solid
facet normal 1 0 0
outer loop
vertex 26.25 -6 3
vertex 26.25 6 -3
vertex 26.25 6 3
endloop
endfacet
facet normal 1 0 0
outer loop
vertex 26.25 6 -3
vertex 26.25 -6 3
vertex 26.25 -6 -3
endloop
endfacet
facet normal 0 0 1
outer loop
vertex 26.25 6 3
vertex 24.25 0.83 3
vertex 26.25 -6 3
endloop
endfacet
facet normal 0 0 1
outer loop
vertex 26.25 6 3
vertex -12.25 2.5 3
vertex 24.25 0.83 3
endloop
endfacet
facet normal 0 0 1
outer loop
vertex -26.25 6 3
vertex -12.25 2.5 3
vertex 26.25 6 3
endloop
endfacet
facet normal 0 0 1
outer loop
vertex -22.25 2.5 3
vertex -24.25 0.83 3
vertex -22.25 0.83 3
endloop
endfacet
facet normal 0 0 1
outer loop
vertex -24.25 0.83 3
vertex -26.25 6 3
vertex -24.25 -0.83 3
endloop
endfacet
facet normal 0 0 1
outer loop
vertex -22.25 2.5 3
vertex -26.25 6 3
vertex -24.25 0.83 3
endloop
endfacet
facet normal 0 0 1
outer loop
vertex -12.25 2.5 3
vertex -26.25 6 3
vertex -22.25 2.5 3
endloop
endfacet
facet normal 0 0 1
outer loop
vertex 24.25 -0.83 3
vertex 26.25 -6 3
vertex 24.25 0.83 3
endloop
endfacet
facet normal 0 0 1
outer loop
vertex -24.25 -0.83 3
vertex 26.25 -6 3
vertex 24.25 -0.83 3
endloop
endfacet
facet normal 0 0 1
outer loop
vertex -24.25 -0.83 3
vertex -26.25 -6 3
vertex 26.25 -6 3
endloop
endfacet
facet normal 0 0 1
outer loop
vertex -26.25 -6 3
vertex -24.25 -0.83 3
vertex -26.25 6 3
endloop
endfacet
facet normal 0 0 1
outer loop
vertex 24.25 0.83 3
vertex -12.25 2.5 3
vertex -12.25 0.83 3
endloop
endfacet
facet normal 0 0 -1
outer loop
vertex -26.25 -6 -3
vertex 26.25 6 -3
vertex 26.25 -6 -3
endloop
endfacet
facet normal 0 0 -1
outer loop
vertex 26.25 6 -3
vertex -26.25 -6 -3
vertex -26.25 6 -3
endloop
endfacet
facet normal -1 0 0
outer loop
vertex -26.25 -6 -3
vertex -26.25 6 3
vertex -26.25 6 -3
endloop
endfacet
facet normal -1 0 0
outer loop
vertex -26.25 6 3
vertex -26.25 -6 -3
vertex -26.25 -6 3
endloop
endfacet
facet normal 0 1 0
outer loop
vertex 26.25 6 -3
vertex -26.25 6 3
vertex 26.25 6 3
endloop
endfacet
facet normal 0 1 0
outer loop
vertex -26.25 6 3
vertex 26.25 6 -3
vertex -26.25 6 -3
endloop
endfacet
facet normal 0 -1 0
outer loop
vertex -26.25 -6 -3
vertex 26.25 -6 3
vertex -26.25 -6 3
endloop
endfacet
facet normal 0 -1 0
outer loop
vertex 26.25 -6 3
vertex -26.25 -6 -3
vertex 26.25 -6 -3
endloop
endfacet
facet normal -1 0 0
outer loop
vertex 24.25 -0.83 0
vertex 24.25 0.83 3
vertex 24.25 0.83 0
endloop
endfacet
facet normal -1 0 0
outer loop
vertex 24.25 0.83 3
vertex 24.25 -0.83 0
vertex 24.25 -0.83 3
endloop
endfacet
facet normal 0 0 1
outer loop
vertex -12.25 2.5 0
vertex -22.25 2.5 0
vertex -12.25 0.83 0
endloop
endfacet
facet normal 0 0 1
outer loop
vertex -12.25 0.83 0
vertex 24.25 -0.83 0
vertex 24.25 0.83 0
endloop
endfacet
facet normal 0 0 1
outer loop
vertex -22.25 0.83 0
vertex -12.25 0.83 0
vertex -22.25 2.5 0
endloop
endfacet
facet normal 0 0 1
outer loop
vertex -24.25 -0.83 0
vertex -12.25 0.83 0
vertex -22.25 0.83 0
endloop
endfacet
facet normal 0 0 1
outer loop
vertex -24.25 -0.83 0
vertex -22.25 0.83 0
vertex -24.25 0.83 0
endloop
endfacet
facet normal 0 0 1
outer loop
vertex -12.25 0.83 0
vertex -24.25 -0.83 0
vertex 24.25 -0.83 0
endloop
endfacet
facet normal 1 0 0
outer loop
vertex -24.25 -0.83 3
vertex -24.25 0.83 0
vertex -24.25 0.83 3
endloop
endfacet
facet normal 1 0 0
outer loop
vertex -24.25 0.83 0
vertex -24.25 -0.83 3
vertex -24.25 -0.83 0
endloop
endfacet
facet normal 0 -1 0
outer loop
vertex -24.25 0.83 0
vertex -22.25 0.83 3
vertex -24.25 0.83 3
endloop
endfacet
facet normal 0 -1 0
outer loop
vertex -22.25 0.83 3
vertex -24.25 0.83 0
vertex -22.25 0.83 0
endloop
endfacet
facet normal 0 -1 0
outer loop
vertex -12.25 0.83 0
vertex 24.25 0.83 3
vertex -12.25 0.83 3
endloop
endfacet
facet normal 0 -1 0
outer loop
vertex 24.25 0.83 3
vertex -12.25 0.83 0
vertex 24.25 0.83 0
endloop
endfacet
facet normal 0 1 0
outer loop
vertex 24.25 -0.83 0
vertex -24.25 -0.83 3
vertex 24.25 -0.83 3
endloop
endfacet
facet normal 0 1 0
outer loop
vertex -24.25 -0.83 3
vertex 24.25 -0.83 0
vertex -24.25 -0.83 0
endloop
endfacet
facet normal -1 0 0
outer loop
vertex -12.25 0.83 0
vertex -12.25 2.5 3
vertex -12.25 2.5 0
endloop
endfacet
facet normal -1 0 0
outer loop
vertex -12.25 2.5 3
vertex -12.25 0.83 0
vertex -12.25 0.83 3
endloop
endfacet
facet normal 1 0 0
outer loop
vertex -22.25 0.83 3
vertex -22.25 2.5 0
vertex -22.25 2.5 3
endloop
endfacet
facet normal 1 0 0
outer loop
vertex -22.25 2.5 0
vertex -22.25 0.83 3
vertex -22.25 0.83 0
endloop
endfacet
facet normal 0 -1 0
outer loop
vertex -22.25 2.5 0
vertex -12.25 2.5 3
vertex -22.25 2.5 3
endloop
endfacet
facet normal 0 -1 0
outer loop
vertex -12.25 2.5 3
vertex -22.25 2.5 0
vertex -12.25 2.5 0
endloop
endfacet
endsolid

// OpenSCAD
/*
nodemcu long/wide 48.5mm
        sort side 25.75mm
        board thickness 1.66

*/

max_board_width = 48.5;
board_thickness = 1.66;
wall_thickness = 2;
l = max_board_width + (wall_thickness * 2);
w = 12;
h = 6;

difference() {
  cube([l, w, h], center = true);
  color("pink") translate([0, 0, 1.5]) cube([max_board_width, 1.66, 3], center = true);
  color("red") translate([-((max_board_width - 14)/2), 1.5, 1.5]) cube([10, 2, 3], center=true);
}
